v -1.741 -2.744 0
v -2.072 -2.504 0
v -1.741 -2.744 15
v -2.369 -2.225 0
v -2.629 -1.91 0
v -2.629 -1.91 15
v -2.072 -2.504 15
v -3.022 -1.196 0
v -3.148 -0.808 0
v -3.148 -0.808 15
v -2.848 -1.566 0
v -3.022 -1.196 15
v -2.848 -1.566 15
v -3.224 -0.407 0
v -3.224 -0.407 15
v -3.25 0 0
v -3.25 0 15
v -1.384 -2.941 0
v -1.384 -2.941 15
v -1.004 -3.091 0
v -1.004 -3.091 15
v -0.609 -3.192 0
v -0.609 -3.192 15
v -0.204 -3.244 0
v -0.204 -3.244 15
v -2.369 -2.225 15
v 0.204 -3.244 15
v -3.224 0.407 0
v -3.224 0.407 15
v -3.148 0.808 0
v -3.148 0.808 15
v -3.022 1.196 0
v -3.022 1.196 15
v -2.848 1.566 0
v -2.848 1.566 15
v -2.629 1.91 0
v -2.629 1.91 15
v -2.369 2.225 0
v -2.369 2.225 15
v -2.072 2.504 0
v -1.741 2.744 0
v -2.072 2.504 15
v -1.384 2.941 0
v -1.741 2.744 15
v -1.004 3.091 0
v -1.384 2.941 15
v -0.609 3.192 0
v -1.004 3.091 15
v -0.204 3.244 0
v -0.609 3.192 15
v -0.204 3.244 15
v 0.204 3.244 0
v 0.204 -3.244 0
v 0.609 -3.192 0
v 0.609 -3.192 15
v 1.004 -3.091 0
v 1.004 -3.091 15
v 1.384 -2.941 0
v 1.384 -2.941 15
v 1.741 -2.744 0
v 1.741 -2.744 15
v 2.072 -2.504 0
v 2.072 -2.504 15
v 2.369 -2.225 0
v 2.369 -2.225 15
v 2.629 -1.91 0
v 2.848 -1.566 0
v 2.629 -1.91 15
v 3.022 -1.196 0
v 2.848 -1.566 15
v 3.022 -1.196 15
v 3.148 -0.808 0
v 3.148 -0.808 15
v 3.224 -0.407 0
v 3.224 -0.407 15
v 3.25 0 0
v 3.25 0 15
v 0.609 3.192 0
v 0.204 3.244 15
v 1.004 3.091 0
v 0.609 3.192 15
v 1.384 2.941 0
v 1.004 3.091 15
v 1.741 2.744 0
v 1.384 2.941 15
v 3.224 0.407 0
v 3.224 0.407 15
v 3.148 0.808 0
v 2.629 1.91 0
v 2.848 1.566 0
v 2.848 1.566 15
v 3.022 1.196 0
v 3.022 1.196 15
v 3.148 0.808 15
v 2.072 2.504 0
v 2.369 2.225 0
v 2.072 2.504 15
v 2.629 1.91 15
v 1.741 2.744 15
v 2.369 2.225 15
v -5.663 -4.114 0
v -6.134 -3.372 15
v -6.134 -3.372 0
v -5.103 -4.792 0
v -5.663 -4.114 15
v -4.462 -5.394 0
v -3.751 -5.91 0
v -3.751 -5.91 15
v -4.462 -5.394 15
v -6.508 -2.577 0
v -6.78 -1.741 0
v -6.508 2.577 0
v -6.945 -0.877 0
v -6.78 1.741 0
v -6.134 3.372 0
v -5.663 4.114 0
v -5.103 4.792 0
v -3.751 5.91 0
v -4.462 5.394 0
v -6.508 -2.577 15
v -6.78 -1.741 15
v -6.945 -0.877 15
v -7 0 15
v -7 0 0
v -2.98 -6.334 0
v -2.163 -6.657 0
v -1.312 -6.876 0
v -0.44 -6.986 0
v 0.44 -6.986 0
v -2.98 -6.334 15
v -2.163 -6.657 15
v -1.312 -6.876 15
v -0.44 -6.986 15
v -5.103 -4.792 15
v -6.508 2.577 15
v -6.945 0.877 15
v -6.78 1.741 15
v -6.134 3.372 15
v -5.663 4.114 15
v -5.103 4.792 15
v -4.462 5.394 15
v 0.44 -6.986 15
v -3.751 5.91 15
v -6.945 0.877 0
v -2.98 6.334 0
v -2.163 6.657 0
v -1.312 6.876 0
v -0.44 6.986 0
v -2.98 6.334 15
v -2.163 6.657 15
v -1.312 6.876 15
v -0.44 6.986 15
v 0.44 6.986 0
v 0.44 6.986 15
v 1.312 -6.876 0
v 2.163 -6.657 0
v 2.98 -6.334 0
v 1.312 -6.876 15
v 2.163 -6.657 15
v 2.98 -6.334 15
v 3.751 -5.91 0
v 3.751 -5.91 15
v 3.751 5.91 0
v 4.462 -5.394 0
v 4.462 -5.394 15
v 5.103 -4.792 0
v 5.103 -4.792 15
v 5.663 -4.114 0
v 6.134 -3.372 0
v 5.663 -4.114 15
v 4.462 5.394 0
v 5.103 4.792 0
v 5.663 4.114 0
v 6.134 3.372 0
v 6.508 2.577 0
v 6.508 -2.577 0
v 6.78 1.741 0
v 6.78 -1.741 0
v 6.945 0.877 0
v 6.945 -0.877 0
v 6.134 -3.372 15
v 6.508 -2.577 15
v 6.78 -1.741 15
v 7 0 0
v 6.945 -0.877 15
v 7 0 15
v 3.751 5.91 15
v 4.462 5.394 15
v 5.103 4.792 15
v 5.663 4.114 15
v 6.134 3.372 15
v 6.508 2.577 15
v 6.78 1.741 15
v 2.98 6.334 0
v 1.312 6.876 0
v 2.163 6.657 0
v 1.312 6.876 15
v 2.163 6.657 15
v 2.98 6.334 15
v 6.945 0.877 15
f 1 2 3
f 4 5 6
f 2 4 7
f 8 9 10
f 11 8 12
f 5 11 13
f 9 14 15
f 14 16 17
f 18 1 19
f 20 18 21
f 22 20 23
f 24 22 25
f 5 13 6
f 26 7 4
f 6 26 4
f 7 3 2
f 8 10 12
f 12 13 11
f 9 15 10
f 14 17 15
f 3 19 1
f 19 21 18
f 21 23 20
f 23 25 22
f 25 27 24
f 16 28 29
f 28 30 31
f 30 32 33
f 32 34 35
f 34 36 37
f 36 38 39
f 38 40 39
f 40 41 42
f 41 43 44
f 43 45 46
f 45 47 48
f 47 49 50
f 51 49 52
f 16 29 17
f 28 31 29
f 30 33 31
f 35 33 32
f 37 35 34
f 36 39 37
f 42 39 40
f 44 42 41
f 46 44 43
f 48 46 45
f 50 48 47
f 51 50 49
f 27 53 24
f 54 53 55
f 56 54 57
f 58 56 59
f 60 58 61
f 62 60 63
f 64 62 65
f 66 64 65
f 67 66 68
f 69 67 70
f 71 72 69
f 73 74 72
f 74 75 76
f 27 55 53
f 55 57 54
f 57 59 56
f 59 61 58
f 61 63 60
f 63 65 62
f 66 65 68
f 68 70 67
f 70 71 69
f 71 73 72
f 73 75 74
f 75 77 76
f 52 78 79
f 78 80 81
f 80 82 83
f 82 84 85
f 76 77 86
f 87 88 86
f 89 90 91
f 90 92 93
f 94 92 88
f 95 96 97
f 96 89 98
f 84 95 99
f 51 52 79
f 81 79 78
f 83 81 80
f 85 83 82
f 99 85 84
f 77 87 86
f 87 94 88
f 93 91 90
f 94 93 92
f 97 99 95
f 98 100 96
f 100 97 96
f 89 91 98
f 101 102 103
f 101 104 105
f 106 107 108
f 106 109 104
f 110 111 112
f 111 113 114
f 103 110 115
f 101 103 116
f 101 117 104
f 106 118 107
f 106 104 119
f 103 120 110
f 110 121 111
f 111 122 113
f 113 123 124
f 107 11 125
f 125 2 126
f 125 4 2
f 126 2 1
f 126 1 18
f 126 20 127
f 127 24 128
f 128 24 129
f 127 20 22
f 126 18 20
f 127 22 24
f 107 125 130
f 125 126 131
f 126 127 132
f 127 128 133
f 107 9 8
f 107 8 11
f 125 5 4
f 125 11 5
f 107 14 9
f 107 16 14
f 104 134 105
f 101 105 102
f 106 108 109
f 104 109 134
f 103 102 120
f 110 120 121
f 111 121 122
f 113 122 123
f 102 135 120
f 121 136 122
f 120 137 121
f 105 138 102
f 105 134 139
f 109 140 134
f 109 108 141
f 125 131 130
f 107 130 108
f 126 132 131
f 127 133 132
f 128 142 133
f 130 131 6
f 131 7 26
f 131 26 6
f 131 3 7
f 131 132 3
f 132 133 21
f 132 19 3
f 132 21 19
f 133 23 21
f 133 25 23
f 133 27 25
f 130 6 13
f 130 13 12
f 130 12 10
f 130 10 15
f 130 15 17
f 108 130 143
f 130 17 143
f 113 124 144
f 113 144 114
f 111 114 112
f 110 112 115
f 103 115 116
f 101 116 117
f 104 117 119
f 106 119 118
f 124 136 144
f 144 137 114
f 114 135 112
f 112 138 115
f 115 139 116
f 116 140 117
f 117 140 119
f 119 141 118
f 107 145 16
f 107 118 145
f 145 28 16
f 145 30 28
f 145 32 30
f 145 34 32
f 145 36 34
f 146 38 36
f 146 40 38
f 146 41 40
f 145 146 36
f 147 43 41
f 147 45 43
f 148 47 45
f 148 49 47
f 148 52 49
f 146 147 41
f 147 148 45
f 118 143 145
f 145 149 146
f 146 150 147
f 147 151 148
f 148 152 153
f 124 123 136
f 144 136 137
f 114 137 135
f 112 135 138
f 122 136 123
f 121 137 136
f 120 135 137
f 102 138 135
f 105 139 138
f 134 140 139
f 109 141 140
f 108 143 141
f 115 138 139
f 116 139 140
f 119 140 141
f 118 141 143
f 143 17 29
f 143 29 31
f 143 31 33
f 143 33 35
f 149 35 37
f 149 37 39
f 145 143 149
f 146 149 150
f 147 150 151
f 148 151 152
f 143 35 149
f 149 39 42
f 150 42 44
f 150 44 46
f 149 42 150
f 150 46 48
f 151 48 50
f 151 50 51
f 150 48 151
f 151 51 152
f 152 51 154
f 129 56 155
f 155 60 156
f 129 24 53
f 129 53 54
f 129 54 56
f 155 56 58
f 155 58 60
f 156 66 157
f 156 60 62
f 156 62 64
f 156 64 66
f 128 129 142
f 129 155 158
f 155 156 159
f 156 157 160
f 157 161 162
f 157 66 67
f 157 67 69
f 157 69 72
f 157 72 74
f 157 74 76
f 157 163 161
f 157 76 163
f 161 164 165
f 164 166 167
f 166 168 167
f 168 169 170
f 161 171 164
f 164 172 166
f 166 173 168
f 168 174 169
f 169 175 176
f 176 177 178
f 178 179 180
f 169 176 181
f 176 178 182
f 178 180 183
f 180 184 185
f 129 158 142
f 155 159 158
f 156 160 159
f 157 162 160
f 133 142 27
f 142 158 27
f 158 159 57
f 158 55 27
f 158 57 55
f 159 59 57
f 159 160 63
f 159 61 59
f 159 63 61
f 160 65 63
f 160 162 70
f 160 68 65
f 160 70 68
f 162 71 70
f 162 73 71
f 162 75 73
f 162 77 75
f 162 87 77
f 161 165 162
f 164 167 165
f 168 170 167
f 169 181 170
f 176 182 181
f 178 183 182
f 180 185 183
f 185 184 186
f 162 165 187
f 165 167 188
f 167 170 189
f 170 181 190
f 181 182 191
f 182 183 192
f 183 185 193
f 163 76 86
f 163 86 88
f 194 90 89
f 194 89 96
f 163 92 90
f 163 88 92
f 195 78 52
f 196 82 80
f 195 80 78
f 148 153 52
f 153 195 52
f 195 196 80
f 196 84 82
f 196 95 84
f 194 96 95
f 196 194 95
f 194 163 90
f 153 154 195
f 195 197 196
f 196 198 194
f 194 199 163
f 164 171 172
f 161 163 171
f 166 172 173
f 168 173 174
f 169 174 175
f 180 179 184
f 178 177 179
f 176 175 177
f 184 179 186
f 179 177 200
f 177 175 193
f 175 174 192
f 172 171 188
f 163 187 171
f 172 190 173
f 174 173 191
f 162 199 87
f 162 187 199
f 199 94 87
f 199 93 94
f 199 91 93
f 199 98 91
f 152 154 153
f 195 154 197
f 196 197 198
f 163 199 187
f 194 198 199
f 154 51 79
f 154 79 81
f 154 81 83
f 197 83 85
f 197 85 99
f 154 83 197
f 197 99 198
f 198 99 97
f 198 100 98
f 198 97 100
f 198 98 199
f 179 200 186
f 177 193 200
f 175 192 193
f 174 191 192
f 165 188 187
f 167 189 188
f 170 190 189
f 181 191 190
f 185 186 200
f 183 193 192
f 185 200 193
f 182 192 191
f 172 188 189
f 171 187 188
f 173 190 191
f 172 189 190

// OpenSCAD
$fn = 50;

difference() {
	union() {
		cylinder(h = 15, r = 7.0);
	}
	union() {
		cylinder(h = 15, r = 3.25);
		cylinder(h = 15, r = 1.8);
	}
}
